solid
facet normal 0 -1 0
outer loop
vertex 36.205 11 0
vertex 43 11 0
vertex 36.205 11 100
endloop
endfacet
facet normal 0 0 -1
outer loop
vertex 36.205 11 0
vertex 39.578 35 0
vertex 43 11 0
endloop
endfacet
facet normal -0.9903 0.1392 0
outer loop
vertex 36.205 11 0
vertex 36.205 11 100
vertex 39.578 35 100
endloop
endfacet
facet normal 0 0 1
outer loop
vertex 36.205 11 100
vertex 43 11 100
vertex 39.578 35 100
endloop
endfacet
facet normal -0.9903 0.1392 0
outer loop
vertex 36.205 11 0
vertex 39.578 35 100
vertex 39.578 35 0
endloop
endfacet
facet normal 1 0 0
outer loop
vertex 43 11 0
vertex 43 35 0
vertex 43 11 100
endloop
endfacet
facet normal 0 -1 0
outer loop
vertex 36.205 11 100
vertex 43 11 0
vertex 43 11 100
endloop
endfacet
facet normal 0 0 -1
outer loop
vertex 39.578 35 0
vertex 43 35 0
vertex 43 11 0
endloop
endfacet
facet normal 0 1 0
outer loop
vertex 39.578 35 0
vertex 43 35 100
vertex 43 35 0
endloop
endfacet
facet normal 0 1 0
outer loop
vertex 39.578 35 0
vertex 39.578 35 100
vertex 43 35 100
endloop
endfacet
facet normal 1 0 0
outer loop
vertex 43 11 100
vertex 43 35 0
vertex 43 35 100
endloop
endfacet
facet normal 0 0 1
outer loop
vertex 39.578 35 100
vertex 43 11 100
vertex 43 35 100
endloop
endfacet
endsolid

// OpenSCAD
// file: ../../lib/emboss.scad
// cad/lib/emboss.scad
include <../generated/dims.scad>

module engrave(code, at, z, size = LABEL_SIZE, facing = -1, spin = 0) {
    if (facing < 0)
        translate([at[0] + LABEL_DEPTH, at[1], z]) rotate([90, 0, -90])
            linear_extrude(LABEL_DEPTH + 0.01) rotate(spin) text(code, size = size, halign = "center", valign = "center");
    else
        translate([at[0] - LABEL_DEPTH, at[1], z]) rotate([90, 0, 90])
            linear_extrude(LABEL_DEPTH + 0.01) rotate(-spin) text(code, size = size, halign = "center", valign = "center");
}
// file: ../dims.scad
MAX_SEG = 240.0;
JOINT_GAP = 1.0;
DEPTH = 63.0;
FRAME_W = 58.0;
FRAME_BODY = 40.0;
TRANSOM_W = 70.0;
TRANSOM_HALF_BODY = 17.0;
SASH_W = 51.0;
SASH_BODY = 33.0;
SASH_Y0 = 2.0;
SASH_GAP = 13.0;
STAY_W = 14.0;
SCREEN_W = 30.0;
SCREEN_DEPTH = 20.0;
SCREEN_OVERLAP = 10.0;
SCREEN_SHELL = 4.0;
GLASS_T = 24.0;
TWINWALL_T = 16.0;
GLASS_CLEAR = 3.0;
GASKET_T = 3.0;
GASKET_IN = 4.0;
GLASS_EDGE = 43.0;
TRANSOM_GLASS = 20.0;
SASH_GLASS = 36.0;
STOP_T = 8.0;
GLASS_Y0 = 11.0;
BEAD_W = 16.0;
BEAD_T = 10.0;
KEY_Y = 43.0;
KEY_D = 4.0;
KEY_H = 4.0;
KEY_LIP = 0.8;
KEY_THROAT = 1.2;
FIN_Y0 = 20.0;
FIN_Y1 = 28.0;
FIN_L = 8.0;
ISTOP_Y0 = 54.0;
FLANGE_Y1 = 17.0;
FLANGE_L = 11.0;
LIP_Y0 = 46.0;
LIP_Y1 = 52.0;
LIP_L = 8.0;
KERF_W = 3.0;
KERF_D = 5.0;
MAG_W = 13.0;
MAG_D = 2.0;
SPLINE_W = 4.0;
SPLINE_D = 5.0;
SPACER_W = 12.0;
ACRYLIC_T = 4.0;
SETTING_L = 100.0;
WEEP_CAP_H = 12.0;
WEEP_CAP_T = 1.5;
TUBE_FRAME = [20.0, 20.0];
TUBE_TRANSOM = [20.0, 40.0];
TUBE_SASH = [20.0, 20.0];
TUBE_SCREEN = [10.0, 10.0];
SOCKET_FRAME = 28.0;
SOCKET_SASH = 21.0;
SOCKET_SCREEN = 12.0;
TUBE_END_CLEAR = 1.5;
TUBE_CLEAR = 0.3;
MIN_SHELL = 6.0;
CHAMBER_WALL = 2.5;
MIN_SKIN = 1.5;
END_CAP = 4.0;
CORD_D = 3.0;
CORD_INSET = 1.5;
FIX_Y = 16.0;
FIX_Y_IN = 48.0;
FIX_DZ = 7.0;
FIX_D = 5.0;
FIX_CB_D = 10.0;
FIX_CB_L = 6.0;
FIX_BOSS_D = 15.0;
TUBE_SCREW_D = 4.2;
CSK_D = 8.6;
TRANSOM_SCREW_X = 39.0;
INSERT_M4_D = 5.6;
INSERT_M4_L = 8.0;
BOSS_PITCH = 24.0;
CAM_ALIGN_TOL = 1.0;
DOVE_W = 16.0;
DOVE_FLARE = 3.0;
DOVE_D = 6.0;
DOVE_CLEAR = 0.3;
LOCK_U = 3.0;
LOCK_D = 3.3;
LOCK_L = 22.0;
NODE_FIX_OFFSET = 25.0;
SHOE_WALL = 3.0;
HINGE_BOSS_X = 21.0;
CAM_BOSS_X = 47.0;
TRANSOM_MAG_X = 20.0;
LABEL_DEPTH = 0.6;
LABEL_SIZE = 5.0;
BEAD_LABEL = 3.0;
WEEP_W = 20.0;
WEEP_H = 5.0;
SILL_SLOPE_DEG = 8.0;
NOSE_KEY_X = 10.0;
NOSE_KEY_W = 6.0;
NOSE_KEY_D = 4.0;
NOSE_PROJECTION = 15.0;
MULLION_W = 70.0;
MULLION_HALF_BODY = 17.0;
MULLION_DOVE_D = 4.0;
VSLOT_SHIFT = 3.0;
VSLOT_MOUTH = 9.16;
VSLOT_NECK = 6.25;
VSLOT_LIP = 1.8;
VSLOT_FLOOR = 6.1;
VSLOT_SHOULDER = [5.6, 8.5];
VSLOT_TIP = [5.0, 5.8];
VSLOT_SCREW_D = 5.5;
VSLOT_CSK_D = 10.0;
VSLOT_M5_L = [10, 12, 16, 20, 25, 30, 35, 40];
VSLOT_TRANSOM_X = 41.25;
EDGE_R = 2.0;
JOINT_BEVEL = 0.8;
BEVEL_STEP = 0.2;
HANDLE_R = 3.0;
// file: ../../parts/setting_block.scad
// cad/parts/setting_block.scad
include <../generated/dims.scad>
use <../profile.scad>
use <../lib/emboss.scad>

function setting_top(pane_t) = GLASS_Y0 + (is_undef(pane_t) ? GLASS_T : pane_t);

module setting_block(code, wedge = false, pane_t) {
    s = tan(SILL_SLOPE_DEG);
    floor_x = function(y) FRAME_BODY - (bead_seat_y() - y) * s;
    y0 = GLASS_Y0;
    y1 = setting_top(pane_t);
    pts = wedge ? [[floor_x(y0), y0], [floor_x(y1), y1], [GLASS_EDGE, y1], [GLASS_EDGE, y0]]
                : [[0, y0], [0, y1], [GLASS_CLEAR, y1], [GLASS_CLEAR, y0]];
    difference() {
        linear_extrude(SETTING_L) polygon(pts);
        engrave(code, [wedge ? floor_x(y0) + 0.2 : 0, (y0 + y1) / 2], SETTING_L / 2, 3);
    }
}
// main file
use <../../parts/setting_block.scad>
setting_block("GW", wedge=true);
